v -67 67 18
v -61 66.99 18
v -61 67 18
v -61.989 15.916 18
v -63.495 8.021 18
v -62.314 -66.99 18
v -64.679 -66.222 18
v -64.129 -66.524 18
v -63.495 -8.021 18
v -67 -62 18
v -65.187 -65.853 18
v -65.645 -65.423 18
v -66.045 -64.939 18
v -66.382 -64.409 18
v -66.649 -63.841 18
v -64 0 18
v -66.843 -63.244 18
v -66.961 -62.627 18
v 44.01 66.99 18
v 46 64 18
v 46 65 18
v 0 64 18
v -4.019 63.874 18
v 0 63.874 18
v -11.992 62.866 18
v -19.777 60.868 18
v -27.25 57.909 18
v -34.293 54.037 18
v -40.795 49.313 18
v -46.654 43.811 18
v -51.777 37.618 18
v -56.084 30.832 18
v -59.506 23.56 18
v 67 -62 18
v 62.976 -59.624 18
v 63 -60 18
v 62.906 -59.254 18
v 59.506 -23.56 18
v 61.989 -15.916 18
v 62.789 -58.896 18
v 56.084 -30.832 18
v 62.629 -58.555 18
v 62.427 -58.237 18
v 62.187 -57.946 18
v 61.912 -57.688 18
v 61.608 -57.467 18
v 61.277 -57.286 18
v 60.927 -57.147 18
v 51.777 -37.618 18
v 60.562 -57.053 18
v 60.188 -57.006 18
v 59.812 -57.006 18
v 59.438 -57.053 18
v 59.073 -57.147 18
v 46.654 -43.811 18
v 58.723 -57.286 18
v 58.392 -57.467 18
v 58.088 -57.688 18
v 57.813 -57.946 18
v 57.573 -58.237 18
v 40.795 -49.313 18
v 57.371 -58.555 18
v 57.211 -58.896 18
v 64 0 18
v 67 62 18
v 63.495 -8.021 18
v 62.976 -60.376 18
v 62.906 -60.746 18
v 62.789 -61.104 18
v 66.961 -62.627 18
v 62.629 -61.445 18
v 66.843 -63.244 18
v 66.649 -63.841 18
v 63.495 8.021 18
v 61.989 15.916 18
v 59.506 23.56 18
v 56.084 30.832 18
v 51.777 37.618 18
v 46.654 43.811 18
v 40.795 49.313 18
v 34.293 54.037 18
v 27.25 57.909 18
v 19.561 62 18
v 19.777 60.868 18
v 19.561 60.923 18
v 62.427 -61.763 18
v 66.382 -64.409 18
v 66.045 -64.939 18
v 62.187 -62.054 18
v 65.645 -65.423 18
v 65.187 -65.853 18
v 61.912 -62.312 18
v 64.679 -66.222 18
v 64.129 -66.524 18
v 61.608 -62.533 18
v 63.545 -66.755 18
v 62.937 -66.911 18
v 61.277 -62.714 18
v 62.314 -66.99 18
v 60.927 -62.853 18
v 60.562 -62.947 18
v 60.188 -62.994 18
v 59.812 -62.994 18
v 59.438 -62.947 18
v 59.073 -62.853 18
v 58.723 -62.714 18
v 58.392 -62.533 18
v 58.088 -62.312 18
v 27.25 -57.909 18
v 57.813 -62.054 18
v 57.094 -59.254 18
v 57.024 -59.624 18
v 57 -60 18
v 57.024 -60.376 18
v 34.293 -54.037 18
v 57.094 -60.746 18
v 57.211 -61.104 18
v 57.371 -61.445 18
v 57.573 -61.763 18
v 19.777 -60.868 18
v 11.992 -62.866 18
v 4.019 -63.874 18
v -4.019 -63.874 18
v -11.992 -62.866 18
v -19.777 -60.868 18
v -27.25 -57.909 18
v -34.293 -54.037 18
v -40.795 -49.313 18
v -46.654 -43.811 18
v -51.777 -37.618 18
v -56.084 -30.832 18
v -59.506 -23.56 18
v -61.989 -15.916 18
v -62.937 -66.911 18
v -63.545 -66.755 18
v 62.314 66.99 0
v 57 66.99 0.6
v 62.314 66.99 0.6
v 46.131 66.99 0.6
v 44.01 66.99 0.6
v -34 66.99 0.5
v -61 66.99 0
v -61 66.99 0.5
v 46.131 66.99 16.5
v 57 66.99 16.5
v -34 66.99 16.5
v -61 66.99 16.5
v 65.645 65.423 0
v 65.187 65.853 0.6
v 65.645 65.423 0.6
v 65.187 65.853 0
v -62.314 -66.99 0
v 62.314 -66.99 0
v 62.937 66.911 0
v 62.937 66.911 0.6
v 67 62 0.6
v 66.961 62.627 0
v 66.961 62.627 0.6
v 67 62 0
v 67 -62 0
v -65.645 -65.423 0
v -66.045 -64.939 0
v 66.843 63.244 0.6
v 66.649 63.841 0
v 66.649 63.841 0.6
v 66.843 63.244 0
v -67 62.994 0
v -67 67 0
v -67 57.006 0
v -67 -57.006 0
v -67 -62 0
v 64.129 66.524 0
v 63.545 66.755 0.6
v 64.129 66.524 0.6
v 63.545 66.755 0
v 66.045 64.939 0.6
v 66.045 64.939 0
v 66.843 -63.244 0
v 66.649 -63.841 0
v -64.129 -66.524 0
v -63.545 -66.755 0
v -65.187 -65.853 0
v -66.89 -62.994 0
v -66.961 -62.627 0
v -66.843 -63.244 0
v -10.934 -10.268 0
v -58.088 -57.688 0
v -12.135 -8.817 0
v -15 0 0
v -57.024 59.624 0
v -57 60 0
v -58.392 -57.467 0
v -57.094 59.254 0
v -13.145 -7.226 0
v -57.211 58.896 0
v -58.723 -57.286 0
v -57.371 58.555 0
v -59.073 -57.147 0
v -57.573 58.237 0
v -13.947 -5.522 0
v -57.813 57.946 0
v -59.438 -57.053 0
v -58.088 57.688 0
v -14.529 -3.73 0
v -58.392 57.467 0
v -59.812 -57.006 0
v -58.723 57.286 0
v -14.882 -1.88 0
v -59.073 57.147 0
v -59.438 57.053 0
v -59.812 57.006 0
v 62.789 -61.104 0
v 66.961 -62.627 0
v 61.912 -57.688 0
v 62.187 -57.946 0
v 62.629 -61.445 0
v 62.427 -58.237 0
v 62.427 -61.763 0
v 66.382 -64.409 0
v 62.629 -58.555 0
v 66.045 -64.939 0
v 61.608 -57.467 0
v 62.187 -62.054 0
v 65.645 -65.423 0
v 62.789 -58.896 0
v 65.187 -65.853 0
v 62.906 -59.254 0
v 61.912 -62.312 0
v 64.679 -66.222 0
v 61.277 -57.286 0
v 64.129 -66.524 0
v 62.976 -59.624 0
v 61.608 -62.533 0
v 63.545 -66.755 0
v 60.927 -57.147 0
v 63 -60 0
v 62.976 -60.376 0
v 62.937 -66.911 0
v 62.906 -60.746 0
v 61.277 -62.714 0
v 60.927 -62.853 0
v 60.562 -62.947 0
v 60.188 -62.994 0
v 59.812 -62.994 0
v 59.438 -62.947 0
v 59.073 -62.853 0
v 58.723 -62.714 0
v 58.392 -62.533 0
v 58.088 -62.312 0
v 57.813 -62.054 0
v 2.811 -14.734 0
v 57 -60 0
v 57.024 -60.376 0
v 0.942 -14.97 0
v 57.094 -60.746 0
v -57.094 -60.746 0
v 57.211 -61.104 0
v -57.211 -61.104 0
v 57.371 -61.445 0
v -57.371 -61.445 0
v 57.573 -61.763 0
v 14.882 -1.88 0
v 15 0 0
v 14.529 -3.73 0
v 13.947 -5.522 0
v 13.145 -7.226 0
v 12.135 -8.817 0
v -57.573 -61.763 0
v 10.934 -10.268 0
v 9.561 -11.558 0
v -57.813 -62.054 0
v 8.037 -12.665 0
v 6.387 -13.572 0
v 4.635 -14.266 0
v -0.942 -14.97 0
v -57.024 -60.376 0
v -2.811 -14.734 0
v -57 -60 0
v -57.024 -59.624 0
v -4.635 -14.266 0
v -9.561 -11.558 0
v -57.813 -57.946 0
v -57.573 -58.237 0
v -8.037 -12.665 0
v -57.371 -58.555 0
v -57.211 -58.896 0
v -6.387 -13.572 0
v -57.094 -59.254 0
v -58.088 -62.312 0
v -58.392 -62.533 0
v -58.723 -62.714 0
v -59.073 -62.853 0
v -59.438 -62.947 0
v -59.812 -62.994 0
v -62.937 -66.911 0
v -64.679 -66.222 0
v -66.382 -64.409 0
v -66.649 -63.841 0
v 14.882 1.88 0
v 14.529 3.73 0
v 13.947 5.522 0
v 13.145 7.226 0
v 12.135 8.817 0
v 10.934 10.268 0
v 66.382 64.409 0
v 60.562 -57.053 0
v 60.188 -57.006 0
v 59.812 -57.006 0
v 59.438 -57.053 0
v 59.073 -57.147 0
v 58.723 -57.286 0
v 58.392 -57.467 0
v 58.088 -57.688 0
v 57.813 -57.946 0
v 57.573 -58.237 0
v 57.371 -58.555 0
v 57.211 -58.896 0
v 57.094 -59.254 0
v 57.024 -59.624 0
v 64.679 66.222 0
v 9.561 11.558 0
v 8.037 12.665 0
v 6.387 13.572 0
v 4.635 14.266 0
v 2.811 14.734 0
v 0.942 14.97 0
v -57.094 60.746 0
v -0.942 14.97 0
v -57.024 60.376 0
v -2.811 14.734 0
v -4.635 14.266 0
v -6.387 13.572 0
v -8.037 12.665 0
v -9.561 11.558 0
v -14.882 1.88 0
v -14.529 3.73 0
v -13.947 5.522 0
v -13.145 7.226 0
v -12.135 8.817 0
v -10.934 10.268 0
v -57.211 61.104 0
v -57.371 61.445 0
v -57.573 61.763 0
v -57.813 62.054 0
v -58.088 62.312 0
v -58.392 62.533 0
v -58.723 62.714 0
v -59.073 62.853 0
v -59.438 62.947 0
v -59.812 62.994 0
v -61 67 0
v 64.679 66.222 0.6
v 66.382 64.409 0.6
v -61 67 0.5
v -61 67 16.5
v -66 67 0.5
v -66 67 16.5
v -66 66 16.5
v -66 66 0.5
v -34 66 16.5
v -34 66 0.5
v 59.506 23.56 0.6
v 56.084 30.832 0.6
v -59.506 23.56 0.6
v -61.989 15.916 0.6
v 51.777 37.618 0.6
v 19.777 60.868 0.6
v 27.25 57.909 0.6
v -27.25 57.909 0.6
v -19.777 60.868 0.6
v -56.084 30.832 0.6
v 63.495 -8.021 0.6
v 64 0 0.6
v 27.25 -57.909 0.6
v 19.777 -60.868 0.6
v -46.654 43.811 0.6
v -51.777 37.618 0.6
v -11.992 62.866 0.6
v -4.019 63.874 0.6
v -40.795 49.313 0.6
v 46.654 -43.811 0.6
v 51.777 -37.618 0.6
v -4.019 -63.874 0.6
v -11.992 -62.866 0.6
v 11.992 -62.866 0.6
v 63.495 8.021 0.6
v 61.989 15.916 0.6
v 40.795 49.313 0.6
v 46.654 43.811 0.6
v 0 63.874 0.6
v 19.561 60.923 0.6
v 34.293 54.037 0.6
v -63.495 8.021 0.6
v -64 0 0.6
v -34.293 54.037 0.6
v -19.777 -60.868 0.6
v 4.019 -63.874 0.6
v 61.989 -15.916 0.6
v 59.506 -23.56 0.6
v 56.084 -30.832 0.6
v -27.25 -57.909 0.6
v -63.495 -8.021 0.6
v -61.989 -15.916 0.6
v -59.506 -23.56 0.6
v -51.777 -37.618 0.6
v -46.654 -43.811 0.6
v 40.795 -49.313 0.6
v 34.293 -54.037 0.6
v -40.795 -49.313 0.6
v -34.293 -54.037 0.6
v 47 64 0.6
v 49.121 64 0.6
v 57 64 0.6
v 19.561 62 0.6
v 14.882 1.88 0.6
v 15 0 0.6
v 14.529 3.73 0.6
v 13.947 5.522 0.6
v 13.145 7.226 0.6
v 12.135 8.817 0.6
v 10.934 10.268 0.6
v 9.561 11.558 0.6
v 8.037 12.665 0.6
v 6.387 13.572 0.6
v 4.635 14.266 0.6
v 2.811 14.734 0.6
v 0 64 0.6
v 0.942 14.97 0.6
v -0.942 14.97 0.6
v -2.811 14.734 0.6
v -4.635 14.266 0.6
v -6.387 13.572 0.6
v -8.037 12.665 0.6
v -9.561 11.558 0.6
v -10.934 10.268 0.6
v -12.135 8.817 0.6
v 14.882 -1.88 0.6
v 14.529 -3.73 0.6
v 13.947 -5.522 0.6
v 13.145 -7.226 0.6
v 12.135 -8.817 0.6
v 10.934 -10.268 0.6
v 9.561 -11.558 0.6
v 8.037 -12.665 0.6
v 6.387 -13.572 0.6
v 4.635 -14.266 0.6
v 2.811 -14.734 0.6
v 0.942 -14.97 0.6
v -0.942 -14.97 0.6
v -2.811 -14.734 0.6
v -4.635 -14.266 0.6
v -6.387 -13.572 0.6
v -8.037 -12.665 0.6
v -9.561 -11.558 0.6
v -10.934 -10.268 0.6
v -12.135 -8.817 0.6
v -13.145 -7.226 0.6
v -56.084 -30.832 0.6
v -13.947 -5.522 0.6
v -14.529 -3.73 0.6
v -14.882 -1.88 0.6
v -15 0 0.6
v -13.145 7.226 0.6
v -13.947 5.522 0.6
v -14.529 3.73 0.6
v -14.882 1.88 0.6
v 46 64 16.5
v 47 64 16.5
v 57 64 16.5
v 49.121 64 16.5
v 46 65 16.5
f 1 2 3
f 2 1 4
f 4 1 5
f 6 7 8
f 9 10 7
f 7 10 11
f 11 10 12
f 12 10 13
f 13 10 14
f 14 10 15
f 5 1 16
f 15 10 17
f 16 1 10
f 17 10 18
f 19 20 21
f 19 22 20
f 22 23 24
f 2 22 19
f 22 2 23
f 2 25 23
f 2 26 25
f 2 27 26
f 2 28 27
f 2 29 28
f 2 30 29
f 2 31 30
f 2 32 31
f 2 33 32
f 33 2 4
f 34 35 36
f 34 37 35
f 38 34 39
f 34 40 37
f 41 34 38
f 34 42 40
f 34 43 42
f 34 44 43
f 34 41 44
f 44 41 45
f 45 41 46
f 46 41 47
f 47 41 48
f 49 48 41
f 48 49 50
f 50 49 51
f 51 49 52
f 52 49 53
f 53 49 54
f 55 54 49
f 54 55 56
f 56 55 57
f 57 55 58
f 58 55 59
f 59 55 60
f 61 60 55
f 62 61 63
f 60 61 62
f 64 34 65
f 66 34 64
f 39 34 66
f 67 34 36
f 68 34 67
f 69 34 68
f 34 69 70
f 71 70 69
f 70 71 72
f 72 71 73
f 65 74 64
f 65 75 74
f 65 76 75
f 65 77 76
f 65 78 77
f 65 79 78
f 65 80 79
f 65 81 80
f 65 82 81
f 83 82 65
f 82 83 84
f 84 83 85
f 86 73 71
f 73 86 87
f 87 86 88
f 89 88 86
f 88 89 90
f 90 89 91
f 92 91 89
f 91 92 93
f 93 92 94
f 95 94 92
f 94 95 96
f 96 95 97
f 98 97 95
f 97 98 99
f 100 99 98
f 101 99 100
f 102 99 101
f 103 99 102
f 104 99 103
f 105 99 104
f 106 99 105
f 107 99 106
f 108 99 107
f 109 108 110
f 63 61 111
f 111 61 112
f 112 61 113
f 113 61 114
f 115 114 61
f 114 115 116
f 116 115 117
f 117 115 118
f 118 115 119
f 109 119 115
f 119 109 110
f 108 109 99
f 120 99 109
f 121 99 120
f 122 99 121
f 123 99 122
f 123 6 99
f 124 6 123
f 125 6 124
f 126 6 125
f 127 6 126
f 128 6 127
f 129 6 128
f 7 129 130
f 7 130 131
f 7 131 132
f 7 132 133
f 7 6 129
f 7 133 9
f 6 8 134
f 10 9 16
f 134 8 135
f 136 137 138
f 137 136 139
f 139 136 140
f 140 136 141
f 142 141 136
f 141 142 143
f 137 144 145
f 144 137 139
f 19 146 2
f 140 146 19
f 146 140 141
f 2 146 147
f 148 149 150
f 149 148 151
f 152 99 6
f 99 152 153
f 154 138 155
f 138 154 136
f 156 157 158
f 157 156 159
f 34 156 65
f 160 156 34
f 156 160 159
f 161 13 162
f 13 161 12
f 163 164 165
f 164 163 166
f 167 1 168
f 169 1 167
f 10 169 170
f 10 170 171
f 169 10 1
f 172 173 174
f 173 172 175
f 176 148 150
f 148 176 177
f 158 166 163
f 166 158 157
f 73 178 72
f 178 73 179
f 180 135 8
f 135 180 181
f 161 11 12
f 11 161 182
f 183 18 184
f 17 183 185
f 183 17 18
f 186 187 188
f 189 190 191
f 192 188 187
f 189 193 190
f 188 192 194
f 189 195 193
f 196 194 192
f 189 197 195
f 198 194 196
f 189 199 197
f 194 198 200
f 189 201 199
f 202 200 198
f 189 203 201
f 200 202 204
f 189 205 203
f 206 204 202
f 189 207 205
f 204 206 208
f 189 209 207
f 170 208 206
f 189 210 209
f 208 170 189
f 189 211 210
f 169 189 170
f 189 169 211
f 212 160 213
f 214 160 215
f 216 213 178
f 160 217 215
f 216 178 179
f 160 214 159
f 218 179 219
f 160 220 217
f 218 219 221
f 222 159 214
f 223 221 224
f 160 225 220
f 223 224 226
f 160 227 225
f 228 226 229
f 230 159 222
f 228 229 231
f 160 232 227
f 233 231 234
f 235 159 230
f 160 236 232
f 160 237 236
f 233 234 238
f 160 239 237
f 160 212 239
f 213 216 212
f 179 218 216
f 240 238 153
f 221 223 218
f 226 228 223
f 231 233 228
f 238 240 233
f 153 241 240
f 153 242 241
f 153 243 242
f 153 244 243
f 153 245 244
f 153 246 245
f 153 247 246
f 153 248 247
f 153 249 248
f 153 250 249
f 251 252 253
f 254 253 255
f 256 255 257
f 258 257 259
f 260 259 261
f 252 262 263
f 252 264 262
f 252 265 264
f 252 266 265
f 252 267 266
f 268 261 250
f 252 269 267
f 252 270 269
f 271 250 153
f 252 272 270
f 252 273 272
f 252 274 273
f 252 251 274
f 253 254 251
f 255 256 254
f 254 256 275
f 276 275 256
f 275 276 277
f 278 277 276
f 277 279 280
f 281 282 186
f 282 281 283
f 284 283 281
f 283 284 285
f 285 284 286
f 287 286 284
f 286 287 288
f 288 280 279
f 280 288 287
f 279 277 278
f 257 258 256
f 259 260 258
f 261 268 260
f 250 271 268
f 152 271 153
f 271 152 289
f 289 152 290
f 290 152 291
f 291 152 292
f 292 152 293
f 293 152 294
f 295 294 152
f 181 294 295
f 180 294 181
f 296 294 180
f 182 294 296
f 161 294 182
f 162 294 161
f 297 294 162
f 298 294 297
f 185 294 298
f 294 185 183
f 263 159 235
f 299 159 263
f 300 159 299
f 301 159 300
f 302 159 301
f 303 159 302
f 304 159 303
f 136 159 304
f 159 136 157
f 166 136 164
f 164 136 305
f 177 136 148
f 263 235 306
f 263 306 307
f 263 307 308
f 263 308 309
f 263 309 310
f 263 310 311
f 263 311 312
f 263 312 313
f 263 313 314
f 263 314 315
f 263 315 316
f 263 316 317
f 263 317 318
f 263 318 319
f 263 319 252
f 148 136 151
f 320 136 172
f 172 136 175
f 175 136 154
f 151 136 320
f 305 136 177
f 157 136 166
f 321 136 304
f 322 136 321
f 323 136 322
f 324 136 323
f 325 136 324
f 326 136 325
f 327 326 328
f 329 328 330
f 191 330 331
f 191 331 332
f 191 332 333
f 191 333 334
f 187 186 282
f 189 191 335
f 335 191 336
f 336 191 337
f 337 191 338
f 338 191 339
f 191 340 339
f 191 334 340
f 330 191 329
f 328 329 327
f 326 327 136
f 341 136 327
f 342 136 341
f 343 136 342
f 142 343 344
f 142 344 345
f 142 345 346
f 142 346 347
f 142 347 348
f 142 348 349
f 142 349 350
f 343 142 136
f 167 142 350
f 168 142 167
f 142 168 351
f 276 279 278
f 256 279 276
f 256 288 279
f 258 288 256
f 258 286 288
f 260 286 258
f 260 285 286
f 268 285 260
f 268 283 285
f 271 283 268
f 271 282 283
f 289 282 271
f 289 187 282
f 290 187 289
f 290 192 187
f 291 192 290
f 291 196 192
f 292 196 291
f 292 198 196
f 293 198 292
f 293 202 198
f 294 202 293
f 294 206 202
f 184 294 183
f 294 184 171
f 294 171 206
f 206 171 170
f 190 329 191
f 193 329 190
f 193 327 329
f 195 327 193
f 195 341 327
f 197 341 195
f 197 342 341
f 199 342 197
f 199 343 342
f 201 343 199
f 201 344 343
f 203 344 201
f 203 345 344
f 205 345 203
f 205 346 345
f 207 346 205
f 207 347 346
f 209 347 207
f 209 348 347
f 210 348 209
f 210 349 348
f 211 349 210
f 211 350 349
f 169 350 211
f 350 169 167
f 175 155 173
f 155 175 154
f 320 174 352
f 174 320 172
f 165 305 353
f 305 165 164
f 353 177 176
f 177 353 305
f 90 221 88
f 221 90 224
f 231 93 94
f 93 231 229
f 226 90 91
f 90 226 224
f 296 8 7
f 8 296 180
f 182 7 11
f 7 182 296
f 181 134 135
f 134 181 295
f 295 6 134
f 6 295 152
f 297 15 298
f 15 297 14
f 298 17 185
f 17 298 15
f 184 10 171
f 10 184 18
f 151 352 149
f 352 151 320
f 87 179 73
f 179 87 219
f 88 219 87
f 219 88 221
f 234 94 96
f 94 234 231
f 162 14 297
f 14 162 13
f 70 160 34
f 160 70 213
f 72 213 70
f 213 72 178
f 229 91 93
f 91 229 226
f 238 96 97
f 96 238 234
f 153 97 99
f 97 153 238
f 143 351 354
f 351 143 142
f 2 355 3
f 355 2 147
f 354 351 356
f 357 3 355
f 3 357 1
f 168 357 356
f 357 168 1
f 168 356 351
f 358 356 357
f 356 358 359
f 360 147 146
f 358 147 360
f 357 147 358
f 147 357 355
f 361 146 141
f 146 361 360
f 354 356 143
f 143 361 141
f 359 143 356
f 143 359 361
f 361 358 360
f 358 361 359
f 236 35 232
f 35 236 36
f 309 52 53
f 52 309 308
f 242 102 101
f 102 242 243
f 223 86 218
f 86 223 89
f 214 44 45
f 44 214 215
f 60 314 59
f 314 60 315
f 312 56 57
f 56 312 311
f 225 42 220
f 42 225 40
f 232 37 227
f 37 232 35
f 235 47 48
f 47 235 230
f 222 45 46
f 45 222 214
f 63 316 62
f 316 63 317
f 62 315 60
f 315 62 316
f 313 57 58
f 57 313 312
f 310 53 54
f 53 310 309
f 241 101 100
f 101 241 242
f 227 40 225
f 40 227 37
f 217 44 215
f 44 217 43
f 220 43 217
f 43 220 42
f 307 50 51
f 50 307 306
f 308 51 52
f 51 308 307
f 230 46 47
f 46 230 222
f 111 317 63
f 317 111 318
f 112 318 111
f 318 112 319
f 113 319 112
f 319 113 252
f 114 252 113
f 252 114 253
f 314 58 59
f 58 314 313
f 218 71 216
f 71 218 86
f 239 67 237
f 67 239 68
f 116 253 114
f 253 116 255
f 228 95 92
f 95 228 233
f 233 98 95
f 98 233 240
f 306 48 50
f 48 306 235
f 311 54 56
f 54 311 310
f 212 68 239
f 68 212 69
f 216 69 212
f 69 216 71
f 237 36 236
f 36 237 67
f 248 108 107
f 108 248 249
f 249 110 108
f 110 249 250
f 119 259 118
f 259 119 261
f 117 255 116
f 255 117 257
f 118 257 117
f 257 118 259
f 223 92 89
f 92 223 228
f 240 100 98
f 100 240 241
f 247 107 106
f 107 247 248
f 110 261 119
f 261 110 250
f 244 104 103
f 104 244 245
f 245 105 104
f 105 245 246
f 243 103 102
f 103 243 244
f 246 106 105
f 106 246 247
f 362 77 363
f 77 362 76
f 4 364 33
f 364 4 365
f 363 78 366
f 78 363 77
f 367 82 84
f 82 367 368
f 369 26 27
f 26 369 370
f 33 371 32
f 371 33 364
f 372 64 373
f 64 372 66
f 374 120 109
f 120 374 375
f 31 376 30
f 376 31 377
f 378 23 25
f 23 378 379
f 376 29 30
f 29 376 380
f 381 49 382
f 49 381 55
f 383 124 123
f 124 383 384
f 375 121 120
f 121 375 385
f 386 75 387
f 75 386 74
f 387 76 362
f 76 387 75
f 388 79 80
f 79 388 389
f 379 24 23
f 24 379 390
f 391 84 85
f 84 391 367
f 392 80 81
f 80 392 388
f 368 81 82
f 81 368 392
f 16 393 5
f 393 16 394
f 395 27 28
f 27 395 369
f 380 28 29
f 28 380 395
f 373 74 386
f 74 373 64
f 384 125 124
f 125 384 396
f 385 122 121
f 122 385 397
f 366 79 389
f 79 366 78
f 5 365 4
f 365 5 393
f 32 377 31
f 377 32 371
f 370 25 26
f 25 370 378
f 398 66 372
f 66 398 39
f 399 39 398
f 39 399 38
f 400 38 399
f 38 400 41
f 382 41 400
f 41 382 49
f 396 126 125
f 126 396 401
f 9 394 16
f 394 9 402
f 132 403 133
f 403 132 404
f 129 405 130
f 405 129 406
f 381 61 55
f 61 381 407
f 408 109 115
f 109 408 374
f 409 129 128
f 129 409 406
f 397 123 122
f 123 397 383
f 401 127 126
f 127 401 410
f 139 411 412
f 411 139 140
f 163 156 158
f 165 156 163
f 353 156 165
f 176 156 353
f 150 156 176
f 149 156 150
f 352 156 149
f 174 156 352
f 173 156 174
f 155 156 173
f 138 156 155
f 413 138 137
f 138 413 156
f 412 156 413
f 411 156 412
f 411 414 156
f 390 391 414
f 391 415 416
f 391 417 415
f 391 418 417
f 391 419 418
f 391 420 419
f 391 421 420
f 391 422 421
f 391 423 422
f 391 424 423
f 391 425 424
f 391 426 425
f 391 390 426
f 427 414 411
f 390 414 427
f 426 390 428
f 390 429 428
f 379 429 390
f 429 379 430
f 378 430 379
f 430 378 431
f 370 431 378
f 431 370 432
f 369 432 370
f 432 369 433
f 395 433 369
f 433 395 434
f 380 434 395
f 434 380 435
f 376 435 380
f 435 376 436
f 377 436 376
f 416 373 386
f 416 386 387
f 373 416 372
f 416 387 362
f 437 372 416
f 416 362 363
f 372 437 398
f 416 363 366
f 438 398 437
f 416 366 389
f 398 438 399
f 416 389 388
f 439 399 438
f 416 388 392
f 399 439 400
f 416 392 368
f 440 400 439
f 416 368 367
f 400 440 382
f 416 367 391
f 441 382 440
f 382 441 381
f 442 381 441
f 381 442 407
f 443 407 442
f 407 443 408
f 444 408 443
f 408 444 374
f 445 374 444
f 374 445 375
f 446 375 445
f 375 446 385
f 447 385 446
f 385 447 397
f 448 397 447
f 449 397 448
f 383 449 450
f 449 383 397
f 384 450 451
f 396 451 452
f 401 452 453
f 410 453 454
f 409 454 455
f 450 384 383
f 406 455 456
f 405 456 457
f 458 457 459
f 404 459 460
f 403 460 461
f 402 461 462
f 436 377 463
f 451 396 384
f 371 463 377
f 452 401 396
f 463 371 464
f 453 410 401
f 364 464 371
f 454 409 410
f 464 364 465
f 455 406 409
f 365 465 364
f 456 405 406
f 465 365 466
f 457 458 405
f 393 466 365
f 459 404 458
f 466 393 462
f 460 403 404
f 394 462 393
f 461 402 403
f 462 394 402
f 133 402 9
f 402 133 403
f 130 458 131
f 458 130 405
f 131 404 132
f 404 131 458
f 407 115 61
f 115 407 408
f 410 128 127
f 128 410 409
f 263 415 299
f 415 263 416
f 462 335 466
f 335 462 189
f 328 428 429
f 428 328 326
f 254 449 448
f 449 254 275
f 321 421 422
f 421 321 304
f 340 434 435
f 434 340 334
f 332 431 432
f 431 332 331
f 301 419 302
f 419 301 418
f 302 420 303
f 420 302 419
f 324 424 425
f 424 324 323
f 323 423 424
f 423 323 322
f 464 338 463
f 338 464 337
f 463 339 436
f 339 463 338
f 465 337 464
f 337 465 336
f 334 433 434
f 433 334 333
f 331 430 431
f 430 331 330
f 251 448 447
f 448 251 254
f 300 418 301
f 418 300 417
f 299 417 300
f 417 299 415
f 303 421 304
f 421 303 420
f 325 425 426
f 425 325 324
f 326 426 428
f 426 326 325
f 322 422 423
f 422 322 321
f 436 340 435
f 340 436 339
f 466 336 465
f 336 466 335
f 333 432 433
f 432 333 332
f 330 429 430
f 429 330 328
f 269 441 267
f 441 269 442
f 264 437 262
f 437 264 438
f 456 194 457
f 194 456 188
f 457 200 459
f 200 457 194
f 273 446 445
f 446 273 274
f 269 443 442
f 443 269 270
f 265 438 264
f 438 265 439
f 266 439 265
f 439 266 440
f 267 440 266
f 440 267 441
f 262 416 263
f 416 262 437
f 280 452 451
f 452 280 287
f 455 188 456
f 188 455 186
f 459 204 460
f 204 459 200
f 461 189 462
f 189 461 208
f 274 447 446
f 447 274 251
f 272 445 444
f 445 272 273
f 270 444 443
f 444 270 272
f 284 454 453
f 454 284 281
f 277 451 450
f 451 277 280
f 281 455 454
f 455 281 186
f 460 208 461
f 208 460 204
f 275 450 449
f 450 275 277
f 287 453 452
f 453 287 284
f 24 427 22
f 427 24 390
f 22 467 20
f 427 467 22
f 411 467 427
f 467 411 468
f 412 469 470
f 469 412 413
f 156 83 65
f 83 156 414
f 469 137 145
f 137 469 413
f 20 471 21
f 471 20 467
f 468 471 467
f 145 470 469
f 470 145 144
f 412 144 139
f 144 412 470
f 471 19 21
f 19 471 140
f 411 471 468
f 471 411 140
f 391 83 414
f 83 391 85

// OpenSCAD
$fn = 50;


difference() {
	union() {
		hull() {
			translate(v = [-62.0000000000, 62.0000000000, 0]) {
				cylinder(h = 18, r = 5);
			}
			translate(v = [62.0000000000, 62.0000000000, 0]) {
				cylinder(h = 18, r = 5);
			}
			translate(v = [-62.0000000000, -62.0000000000, 0]) {
				cylinder(h = 18, r = 5);
			}
			translate(v = [62.0000000000, -62.0000000000, 0]) {
				cylinder(h = 18, r = 5);
			}
		}
		translate(v = [-67.0000000000, 61.0000000000, 0]) {
			cube(size = [6, 6, 18]);
		}
	}
	union() {
		translate(v = [-67.5000000000, -60.0000000000, -250.0000000000]) {
			rotate(a = [0, 0, 0]) {
				difference() {
					union() {
						hull() {
							translate(v = [7.5000000000, 0, 0]) {
								cylinder(h = 250, r = 3.0000000000, r1 = 3.0000000000, r2 = 3.0000000000);
							}
							translate(v = [-7.5000000000, 0, 0]) {
								cylinder(h = 250, r = 3.0000000000, r1 = 3.0000000000, r2 = 3.0000000000);
							}
						}
					}
					union();
				}
			}
		}
		translate(v = [-67.5000000000, 60.0000000000, -250.0000000000]) {
			rotate(a = [0, 0, 0]) {
				difference() {
					union() {
						hull() {
							translate(v = [7.5000000000, 0, 0]) {
								cylinder(h = 250, r = 3.0000000000, r1 = 3.0000000000, r2 = 3.0000000000);
							}
							translate(v = [-7.5000000000, 0, 0]) {
								cylinder(h = 250, r = 3.0000000000, r1 = 3.0000000000, r2 = 3.0000000000);
							}
						}
					}
					union();
				}
			}
		}
		translate(v = [-66.0000000000, 66.0000000000, 0.5000000000]) {
			cube(size = [32, 1, 16]);
		}
		translate(v = [60.0000000000, -60.0000000000, -50.0000000000]) {
			cylinder(h = 100, r = 3.0000000000);
		}
		translate(v = [0, 0, 0.6000000000]) {
			cylinder(h = 20.4000000000, r = 64.0000000000);
		}
		translate(v = [0, 0, -9.0000000000]) {
			cylinder(h = 18, r = 15.0000000000);
		}
		translate(v = [0.0000000000, 62.0000000000, 0.6000000000]) {
			cube(size = [67.0000000000, 2, 20.4000000000]);
		}
		translate(v = [57.0000000000, 62.0000000000, 0.6000000000]) {
			cube(size = [10, 5, 20.4000000000]);
		}
		translate(v = [46.0000000000, 62.0000000000, 16.5000000000]) {
			cube(size = [21, 5, 1.5000000000]);
		}
		translate(v = [43.2500000000, 67.7500000000, 0.6000000000]) {
			rotate(a = [0, 0, -45]) {
				cube(size = [7.5000000000, 1.5000000000, 20.4000000000]);
			}
		}
		translate(v = [12.0610000000, 60.0000000000, 0.6000000000]) {
			cube(size = [7.5000000000, 2, 17.4000000000]);
		}
	}
}
